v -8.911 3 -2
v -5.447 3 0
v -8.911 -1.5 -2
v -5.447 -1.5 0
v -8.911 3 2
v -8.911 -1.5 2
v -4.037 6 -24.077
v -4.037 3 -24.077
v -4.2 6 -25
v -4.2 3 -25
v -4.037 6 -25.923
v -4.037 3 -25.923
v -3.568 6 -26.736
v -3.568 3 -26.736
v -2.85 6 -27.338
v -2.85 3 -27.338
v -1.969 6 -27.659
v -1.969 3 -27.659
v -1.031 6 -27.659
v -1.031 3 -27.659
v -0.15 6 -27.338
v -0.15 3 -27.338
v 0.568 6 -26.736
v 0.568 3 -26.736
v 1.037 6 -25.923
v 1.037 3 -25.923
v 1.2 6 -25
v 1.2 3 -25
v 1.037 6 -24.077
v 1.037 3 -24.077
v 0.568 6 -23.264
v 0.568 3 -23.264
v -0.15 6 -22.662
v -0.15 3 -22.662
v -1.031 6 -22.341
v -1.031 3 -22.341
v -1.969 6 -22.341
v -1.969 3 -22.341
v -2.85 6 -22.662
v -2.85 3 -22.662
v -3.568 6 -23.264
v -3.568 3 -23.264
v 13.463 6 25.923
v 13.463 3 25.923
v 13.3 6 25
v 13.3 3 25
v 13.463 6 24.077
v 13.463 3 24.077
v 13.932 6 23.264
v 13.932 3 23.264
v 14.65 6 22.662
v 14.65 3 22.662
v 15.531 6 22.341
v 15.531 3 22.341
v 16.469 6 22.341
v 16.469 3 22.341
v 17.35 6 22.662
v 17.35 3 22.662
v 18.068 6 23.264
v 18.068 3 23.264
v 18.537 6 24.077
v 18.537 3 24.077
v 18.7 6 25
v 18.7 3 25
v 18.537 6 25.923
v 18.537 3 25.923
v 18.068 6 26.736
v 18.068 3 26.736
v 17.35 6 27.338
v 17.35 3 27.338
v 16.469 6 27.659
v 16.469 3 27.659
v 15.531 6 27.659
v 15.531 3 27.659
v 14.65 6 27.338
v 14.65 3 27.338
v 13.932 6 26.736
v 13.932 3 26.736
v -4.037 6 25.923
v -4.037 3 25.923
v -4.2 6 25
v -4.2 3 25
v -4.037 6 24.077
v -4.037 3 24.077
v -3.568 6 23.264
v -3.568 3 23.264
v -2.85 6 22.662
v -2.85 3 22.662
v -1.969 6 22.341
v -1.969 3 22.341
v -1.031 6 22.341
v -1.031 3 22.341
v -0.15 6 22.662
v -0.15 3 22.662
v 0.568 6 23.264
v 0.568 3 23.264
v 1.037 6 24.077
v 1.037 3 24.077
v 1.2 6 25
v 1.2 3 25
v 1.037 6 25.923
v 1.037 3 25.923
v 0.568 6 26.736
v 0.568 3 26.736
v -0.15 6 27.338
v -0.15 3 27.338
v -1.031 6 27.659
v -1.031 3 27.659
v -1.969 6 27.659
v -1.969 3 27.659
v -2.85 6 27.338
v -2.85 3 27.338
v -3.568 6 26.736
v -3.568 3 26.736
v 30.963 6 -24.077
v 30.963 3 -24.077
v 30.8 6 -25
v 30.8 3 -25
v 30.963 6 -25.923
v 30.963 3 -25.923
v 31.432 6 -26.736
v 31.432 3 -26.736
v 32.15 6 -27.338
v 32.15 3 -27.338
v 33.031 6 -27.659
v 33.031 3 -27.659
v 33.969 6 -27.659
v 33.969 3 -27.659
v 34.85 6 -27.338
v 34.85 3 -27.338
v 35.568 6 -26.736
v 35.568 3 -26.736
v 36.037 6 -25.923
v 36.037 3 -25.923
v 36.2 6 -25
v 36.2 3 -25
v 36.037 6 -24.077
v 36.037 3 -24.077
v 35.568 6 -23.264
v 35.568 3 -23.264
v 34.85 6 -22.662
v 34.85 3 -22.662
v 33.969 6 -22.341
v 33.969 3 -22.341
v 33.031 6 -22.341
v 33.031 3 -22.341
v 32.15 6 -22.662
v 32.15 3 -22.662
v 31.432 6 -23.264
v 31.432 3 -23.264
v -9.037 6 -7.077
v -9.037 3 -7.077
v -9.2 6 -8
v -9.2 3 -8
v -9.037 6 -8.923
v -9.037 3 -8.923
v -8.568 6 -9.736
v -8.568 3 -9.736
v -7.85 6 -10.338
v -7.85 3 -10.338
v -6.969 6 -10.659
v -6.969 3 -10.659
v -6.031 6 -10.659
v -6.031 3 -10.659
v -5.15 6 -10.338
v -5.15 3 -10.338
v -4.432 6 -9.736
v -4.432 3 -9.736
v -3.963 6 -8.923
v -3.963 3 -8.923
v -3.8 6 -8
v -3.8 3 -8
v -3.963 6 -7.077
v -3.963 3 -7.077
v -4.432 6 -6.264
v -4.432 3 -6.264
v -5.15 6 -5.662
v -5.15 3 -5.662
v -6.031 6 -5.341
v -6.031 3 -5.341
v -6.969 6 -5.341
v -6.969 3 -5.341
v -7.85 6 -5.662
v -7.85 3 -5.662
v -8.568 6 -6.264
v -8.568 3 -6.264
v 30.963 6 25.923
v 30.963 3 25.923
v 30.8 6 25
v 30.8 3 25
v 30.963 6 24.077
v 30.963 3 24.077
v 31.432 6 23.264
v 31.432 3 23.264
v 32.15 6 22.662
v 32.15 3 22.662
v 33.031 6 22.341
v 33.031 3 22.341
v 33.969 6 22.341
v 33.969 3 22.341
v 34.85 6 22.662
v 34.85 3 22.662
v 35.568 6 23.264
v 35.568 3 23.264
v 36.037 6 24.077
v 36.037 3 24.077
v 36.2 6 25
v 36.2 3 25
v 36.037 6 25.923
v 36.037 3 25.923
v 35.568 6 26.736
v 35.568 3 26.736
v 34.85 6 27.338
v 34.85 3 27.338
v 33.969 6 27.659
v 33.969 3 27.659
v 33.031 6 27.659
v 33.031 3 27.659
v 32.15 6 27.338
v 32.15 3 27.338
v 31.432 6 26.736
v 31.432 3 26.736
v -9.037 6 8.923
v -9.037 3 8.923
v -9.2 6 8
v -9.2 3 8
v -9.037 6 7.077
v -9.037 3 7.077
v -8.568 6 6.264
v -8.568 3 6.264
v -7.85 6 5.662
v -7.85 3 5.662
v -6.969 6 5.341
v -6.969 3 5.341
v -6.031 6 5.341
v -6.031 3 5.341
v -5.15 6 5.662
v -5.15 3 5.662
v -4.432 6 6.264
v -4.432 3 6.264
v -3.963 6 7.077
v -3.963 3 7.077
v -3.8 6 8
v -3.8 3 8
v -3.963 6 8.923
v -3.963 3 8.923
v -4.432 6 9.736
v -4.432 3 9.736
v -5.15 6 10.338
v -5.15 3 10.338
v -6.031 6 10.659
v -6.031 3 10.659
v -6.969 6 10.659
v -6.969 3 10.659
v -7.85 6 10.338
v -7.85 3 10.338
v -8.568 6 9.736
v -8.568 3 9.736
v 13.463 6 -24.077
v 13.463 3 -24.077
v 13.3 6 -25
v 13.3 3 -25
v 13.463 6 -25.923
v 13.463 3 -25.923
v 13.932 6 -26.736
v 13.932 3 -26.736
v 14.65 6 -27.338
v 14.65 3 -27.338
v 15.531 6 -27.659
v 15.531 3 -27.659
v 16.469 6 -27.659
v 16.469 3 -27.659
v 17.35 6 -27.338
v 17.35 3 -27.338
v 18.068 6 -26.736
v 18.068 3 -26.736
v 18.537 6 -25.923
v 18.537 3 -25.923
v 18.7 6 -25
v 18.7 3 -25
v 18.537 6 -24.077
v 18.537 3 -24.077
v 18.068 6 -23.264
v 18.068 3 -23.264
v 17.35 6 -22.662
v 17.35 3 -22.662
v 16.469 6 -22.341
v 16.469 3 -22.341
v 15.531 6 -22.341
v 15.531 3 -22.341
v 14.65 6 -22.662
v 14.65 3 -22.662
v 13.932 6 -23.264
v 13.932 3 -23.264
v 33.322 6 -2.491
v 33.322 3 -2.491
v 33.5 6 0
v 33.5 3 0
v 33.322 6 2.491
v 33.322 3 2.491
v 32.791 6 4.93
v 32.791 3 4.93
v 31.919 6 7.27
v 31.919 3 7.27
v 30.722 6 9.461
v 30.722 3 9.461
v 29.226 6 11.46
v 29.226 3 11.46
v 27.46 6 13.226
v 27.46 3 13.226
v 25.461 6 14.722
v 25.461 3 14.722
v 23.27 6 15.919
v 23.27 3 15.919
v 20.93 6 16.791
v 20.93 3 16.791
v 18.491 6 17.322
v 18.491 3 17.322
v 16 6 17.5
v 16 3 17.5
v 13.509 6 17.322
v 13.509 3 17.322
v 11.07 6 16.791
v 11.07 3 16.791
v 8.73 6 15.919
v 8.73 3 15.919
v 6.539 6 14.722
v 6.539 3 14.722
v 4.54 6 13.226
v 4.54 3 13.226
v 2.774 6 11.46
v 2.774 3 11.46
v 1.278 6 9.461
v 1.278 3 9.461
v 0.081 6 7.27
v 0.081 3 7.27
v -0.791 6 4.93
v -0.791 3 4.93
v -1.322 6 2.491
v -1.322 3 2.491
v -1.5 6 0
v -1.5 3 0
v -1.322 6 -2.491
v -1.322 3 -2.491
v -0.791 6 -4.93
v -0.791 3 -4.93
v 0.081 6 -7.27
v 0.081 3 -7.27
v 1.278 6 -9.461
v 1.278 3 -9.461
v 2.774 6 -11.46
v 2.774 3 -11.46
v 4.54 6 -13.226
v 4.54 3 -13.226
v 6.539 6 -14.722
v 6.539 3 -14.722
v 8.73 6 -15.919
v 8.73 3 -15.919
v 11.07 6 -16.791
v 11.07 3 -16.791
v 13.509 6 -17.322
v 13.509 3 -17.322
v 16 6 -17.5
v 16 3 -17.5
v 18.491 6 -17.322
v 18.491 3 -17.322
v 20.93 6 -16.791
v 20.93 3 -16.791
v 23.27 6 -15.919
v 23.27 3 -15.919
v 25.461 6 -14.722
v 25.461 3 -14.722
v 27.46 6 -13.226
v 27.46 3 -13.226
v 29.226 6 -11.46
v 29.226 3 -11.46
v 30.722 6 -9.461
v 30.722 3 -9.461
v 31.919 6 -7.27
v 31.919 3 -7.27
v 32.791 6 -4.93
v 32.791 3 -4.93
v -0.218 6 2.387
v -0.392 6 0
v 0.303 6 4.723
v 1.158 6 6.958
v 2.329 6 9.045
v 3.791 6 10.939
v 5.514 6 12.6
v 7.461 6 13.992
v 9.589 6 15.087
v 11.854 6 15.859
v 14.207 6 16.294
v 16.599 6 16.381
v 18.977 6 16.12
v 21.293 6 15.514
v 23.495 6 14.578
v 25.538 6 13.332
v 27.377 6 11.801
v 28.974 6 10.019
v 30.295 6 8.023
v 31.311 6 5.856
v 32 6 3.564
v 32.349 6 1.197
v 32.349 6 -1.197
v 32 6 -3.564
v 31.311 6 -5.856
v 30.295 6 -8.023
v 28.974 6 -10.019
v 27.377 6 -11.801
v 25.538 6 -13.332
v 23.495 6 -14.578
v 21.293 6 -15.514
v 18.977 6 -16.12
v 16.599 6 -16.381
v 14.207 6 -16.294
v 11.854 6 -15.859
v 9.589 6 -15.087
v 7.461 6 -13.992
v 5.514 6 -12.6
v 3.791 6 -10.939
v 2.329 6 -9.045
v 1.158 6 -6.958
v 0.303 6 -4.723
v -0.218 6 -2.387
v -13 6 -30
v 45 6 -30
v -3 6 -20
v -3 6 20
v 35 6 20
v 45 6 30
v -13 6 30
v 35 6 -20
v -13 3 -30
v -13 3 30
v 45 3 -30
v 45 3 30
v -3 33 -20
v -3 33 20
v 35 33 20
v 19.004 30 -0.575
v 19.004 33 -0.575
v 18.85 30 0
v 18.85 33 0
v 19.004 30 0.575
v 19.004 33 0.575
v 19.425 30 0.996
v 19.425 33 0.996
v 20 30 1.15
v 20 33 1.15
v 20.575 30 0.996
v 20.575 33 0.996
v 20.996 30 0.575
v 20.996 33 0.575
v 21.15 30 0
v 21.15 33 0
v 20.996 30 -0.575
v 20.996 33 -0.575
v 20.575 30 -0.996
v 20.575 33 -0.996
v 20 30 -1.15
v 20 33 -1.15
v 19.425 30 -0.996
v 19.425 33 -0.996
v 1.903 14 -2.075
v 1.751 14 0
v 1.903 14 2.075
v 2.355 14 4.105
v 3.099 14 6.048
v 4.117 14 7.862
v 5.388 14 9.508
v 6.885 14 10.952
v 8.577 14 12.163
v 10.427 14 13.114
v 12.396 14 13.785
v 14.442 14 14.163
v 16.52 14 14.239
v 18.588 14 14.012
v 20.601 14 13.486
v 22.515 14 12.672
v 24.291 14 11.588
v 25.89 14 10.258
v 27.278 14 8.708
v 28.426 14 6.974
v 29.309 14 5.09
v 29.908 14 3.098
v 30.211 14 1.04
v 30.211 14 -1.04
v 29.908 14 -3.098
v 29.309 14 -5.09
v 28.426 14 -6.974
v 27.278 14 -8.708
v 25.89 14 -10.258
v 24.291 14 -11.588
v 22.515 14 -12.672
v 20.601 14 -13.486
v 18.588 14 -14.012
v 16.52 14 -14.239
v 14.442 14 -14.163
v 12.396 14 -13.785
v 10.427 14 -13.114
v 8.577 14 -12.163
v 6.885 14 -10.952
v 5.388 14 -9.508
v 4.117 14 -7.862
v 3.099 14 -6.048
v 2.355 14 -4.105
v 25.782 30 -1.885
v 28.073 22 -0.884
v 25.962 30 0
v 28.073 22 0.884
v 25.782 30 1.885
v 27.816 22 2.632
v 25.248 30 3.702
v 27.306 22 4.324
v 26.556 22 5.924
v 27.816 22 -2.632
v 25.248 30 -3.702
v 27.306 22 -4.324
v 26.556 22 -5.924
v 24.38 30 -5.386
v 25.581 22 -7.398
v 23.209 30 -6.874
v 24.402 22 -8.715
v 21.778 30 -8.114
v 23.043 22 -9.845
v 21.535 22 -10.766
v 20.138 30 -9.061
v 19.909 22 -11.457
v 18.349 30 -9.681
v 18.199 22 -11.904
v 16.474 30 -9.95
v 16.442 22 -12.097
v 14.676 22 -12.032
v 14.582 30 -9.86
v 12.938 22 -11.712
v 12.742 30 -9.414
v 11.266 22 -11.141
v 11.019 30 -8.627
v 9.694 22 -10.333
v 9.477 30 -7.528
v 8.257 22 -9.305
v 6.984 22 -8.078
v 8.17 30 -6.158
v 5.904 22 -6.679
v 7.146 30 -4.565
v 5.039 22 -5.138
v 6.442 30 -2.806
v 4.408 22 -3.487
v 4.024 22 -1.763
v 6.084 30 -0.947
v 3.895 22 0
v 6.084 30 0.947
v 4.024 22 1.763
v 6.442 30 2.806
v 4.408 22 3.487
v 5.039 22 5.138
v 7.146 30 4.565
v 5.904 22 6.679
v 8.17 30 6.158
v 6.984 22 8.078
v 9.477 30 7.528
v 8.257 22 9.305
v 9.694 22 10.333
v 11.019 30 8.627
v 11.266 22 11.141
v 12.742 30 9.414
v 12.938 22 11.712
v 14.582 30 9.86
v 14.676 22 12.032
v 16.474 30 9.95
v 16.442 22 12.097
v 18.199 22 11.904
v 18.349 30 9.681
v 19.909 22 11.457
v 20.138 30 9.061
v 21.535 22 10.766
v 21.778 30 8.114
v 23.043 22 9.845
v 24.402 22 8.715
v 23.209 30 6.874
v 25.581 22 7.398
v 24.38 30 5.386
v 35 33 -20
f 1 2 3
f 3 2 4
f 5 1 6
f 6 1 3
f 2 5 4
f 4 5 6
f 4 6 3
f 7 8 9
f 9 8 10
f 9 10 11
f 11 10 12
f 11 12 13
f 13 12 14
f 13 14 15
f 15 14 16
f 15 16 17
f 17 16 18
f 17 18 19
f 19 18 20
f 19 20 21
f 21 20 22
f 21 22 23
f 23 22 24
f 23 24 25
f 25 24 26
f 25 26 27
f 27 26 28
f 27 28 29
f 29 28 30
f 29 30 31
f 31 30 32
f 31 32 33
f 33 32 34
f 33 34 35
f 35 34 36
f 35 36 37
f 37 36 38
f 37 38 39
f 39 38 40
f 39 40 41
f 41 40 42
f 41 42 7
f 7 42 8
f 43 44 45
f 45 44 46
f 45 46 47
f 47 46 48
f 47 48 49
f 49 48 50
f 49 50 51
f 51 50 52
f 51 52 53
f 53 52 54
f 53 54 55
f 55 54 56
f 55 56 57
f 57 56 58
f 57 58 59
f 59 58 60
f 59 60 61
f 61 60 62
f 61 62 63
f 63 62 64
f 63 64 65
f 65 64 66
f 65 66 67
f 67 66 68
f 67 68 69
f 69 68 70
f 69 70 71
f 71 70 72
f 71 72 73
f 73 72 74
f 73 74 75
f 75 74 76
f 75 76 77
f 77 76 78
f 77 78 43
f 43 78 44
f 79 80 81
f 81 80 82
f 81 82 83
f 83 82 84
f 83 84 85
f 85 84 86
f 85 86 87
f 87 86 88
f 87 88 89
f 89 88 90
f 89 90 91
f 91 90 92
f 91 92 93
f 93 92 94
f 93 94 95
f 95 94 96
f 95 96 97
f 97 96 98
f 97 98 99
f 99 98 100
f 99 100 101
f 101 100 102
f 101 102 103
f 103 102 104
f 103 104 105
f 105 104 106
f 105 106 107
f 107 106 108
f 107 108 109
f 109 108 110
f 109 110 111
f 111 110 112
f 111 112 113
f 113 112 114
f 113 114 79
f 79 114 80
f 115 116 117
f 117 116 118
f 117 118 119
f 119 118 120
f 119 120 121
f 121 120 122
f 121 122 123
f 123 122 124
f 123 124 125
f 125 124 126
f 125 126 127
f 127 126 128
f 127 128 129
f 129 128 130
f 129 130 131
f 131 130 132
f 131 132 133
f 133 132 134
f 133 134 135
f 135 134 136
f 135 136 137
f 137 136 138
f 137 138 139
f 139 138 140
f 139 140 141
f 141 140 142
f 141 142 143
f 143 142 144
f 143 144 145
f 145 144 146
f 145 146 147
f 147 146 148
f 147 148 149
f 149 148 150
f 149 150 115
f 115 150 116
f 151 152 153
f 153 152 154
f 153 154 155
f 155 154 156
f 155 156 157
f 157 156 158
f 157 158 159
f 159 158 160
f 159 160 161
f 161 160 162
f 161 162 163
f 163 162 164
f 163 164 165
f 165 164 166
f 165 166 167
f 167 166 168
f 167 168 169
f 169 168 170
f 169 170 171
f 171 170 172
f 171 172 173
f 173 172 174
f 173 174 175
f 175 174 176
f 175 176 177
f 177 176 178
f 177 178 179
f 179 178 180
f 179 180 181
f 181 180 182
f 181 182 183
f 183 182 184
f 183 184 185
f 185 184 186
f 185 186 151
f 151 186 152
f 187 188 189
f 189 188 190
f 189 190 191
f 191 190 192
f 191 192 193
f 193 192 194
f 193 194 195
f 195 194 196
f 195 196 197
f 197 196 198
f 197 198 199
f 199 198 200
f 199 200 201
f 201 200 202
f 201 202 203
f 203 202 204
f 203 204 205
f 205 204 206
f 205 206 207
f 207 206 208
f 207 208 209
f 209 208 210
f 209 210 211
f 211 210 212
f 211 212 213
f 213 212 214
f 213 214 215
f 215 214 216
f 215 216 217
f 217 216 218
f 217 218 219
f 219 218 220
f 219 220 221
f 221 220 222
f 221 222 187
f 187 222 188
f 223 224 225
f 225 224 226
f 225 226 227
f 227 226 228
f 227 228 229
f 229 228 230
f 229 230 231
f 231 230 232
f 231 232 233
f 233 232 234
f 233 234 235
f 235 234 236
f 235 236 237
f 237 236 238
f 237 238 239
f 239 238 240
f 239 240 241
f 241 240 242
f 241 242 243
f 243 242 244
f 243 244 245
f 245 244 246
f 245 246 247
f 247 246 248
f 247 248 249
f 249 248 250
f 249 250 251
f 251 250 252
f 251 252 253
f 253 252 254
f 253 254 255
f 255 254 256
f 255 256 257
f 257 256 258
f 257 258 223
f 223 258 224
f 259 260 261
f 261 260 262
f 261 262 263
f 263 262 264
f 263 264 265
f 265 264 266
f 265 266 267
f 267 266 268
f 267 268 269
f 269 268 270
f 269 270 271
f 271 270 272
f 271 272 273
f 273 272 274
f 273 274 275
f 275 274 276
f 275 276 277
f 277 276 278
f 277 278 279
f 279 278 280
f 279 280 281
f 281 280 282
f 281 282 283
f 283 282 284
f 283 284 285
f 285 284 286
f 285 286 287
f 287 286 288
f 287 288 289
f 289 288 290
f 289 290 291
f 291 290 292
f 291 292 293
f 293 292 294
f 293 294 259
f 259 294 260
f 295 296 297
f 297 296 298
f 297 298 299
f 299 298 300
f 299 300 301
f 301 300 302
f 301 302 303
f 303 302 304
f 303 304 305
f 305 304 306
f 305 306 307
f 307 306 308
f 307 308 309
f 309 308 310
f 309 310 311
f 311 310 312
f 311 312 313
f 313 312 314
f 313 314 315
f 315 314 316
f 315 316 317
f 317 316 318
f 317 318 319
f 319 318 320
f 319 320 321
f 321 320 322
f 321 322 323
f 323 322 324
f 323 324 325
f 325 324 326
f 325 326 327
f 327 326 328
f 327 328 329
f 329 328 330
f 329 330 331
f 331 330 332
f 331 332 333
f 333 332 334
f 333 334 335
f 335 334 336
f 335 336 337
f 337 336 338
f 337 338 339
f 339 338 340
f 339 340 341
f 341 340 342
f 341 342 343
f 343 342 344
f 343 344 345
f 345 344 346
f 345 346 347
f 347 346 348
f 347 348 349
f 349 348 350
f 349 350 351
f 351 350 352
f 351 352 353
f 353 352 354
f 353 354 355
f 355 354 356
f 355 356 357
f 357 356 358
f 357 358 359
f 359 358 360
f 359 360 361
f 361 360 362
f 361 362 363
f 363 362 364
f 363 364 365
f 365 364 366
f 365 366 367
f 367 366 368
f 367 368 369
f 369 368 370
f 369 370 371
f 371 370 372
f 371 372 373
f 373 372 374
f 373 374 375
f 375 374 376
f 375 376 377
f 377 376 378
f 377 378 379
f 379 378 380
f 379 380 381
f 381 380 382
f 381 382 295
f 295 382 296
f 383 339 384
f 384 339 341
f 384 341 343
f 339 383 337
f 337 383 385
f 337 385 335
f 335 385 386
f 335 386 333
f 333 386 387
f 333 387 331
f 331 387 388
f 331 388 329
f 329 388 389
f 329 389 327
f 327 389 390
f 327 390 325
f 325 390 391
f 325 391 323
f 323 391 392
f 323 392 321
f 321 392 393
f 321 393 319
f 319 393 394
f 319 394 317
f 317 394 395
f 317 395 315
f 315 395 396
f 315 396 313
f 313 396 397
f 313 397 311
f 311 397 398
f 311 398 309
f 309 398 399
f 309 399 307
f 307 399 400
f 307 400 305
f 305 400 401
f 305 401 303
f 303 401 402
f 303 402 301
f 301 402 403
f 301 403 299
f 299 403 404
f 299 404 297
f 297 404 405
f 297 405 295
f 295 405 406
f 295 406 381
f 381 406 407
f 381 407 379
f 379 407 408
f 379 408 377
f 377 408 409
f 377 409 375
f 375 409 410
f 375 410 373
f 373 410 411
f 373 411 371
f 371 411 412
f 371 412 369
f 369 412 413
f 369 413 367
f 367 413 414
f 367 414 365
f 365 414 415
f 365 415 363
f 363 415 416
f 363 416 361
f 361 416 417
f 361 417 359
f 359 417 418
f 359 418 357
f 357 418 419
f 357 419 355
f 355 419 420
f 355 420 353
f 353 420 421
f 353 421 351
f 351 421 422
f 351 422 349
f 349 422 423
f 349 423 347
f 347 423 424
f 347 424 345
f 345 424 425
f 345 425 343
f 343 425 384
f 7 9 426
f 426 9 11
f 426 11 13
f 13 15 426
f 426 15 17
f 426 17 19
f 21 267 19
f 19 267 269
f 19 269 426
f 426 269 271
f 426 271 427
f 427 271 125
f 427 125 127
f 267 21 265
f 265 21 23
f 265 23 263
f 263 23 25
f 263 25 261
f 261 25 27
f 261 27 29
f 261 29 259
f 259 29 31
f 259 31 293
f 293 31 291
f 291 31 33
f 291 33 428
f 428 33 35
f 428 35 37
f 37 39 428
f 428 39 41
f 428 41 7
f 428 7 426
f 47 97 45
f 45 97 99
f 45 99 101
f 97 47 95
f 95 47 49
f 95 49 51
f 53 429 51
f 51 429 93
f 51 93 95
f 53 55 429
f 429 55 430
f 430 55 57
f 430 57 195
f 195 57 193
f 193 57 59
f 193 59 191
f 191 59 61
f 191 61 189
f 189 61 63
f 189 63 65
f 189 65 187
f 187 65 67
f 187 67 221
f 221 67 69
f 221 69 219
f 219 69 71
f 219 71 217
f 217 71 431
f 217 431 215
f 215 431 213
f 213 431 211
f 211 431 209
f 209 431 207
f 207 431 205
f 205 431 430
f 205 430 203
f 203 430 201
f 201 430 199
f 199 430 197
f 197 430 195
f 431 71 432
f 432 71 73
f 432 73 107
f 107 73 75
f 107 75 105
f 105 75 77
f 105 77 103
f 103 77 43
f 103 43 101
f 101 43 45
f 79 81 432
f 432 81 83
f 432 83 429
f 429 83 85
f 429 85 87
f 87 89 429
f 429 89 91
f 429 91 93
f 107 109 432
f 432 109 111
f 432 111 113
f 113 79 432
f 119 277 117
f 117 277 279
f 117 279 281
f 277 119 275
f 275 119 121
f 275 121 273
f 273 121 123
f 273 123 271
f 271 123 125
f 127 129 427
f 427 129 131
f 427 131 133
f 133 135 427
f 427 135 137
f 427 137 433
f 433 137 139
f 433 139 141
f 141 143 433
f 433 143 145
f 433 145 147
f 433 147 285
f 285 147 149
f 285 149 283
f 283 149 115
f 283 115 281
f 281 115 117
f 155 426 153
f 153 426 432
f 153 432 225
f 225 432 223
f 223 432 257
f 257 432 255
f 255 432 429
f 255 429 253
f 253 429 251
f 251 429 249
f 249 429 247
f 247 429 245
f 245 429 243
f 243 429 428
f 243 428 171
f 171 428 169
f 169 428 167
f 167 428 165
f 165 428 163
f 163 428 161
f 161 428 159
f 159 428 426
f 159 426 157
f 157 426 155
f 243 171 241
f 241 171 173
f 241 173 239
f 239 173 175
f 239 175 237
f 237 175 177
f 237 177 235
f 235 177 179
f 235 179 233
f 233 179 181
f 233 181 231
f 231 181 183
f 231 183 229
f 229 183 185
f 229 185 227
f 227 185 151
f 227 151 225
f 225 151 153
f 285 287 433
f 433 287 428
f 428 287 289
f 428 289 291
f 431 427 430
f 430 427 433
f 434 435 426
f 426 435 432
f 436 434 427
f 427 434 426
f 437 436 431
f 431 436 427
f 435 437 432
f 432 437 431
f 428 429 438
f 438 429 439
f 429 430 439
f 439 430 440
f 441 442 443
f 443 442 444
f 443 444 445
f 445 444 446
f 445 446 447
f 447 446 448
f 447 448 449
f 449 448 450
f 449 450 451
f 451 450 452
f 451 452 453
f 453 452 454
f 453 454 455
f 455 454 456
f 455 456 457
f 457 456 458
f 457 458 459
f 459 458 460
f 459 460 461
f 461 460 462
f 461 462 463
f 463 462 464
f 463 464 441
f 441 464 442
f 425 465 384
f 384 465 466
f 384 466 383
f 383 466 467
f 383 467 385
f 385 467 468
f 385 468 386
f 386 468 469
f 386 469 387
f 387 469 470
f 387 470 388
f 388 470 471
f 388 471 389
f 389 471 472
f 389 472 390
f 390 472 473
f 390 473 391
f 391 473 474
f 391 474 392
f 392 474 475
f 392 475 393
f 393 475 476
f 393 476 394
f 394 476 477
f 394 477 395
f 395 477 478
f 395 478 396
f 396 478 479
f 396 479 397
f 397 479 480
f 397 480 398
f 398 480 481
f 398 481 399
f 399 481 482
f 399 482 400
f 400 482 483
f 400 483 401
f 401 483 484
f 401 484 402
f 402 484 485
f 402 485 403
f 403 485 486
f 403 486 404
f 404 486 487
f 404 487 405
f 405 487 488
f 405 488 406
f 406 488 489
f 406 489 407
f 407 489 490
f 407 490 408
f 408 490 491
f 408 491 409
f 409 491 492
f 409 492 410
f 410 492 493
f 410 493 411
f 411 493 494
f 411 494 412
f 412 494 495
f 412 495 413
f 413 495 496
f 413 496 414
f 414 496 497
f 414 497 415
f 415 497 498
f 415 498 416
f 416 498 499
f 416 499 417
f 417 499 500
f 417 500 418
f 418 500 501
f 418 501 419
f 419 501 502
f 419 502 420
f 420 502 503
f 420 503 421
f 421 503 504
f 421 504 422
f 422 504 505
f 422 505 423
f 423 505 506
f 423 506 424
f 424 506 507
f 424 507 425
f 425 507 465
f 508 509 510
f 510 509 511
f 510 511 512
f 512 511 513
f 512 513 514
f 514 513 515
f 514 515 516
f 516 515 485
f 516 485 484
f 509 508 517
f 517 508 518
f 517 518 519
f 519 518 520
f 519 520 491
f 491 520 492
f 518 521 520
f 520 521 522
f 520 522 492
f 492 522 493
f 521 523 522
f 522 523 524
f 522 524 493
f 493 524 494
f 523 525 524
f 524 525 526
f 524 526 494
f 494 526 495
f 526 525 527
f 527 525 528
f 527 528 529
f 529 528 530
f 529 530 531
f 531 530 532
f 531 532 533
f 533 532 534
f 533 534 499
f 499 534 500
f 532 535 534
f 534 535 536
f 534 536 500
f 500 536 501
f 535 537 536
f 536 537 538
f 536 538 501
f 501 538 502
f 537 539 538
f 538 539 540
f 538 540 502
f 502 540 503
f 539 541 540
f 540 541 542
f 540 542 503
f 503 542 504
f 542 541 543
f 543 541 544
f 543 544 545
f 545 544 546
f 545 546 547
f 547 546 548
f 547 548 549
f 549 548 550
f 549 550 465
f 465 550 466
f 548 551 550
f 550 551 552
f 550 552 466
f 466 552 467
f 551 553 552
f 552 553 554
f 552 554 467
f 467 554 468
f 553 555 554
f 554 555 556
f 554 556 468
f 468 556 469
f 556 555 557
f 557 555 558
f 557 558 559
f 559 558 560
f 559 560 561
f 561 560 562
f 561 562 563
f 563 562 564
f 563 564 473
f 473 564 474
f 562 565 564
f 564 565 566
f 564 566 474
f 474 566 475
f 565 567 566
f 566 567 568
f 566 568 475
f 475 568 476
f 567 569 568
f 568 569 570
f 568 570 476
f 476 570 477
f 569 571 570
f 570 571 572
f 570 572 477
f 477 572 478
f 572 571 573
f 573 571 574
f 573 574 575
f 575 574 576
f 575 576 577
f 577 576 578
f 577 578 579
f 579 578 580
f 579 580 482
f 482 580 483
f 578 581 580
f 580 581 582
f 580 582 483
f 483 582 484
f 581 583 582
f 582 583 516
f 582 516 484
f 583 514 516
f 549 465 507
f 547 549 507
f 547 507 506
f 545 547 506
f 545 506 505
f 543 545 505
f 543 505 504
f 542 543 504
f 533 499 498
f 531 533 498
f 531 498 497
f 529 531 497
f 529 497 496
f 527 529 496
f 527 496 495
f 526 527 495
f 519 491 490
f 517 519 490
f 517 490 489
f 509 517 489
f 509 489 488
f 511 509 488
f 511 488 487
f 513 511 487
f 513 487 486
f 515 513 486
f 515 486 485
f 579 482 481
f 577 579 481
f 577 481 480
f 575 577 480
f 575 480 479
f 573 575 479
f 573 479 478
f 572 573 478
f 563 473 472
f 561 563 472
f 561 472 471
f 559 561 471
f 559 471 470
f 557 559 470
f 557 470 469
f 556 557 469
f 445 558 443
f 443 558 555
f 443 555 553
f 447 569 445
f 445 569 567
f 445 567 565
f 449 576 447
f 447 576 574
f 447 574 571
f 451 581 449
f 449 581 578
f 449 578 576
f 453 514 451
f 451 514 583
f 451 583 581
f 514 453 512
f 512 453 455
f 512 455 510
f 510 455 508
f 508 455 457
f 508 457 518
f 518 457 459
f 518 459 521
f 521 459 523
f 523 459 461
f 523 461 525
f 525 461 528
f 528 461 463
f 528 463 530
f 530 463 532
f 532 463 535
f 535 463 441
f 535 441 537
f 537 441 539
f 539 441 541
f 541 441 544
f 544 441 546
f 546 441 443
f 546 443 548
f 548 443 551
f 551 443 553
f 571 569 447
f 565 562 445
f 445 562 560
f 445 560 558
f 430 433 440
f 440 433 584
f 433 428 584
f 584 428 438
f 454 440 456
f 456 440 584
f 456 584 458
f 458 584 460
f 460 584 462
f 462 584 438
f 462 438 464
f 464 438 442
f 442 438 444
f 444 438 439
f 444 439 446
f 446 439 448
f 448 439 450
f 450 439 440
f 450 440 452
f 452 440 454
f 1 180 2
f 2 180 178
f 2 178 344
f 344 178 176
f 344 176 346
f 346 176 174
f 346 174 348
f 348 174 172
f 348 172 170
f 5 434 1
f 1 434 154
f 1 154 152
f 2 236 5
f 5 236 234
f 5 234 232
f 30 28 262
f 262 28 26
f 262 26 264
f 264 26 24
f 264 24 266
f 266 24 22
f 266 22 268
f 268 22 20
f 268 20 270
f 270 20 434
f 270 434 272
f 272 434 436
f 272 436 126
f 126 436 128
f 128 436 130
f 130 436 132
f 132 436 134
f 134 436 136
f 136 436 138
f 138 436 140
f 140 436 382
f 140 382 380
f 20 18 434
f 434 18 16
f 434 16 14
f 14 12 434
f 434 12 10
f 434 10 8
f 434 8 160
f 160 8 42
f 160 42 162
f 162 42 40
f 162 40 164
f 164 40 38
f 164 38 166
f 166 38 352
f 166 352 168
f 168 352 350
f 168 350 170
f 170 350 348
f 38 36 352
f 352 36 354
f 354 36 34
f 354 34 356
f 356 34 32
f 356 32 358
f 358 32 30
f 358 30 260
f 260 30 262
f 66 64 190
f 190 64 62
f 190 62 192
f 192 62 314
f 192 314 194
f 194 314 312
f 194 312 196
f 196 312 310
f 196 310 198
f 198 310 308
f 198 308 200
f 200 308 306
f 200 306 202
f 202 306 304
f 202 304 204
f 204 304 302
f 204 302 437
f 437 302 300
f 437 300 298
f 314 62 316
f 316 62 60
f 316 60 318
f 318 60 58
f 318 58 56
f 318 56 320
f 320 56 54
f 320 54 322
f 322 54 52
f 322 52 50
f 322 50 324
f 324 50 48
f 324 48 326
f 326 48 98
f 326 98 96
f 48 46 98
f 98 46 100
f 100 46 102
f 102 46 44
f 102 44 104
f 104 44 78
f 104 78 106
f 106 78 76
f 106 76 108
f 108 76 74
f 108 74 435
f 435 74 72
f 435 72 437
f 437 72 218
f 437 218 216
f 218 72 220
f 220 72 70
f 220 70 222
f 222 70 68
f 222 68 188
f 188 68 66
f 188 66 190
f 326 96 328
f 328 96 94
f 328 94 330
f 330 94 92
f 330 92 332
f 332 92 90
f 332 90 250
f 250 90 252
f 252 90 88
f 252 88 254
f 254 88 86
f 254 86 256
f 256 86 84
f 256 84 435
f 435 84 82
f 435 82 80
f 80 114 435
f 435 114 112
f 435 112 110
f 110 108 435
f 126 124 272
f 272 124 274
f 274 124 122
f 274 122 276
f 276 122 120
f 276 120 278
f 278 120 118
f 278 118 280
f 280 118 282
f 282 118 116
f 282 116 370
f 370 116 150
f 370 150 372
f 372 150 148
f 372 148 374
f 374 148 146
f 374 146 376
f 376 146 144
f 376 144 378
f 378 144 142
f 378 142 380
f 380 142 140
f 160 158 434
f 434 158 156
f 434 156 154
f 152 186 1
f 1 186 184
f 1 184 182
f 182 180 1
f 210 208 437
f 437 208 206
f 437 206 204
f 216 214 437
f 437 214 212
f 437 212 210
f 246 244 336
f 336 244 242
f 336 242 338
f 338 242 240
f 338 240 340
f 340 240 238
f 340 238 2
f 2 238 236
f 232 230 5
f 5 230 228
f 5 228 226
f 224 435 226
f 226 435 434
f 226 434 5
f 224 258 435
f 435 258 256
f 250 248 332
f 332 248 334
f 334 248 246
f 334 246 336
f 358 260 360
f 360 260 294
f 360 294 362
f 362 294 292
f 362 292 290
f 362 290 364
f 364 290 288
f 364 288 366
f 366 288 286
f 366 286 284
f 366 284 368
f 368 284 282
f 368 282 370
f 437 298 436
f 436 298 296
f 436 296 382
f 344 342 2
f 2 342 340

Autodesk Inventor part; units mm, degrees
ref_plane "YZ Plane" through (0, 0, 0) normal (1, 0, 0) x (0, 1, 0)
ref_plane "XZ Plane" through (0, 0, 0) normal (0, 1, 0) x (-1, 0, 0)
ref_plane "XY Plane" through (0, 0, 0) normal (0, 0, 1) x (1, 0, 0)
ref_plane "Work Plane5" through (0, 3, 0) normal (0, 1, 0) x (1, 0, 0)
sketch "Sketch45" plane through (0, 3, 0) normal (0, 1, 0) x (1, 0, 0)
  line L0 (35, -20) -> (-3, -20)
  line L1 (-3, -20) -> (-3, 20)
  line L2 (-3, 20) -> (35, 20)
  line L3 (35, 20) -> (35, -20)
  point P0 (0, 0)
  dimension "d142" = 38
  dimension "d143" = 40
extrude "Extrusion34" add sketch "Sketch45" along normal blind 30
ref_plane "Work Plane2" through (0, 0, 0) normal (0, -1, 0) x (1, 0, 0)
sketch "Sketch47" plane through (0, 0, 0) normal (0, -1, 0) x (1, 0, 0)
  circle A0 centre (16, 0) radius 18
  point P0 (0, 0)
  dimension "d146" = 36
extrude "Extrusion35" cut sketch "Sketch47" against normal blind 30 draft -15
ref_plane "Work Plane1" through (0, 3, 0) normal (0, 1, 0) x (1, 0, 0)
sketch "Sketch74" plane through (0, 33, 0) normal (0, 1, 0) x (1, 0, 0)
  circle A0 centre (20, 0) radius 1.15
  point P0 (0, 0)
  dimension "d210" = 2.3
extrude "Extrusion51" cut sketch "Sketch74" against normal blind 10
sketch "Sketch77" plane through (0, 3, 0) normal (0, -1, 0) x (1, 0, 0)
  circle A0 centre (16, 0) radius 17.5
  point P0 (0, 0)
  dimension "d219" = 35
sketch "Sketch78" plane through (0, 3, 0) normal (0, -1, 0) x (1, 0, 0)
  line L0 (45, -30) -> (-13, -30)
  line L1 (-13, -30) -> (-13, 30)
  line L2 (-13, 30) -> (45, 30)
  line L3 (45, 30) -> (45, -30)
  line L4 (45, -30) -> (-13, 30) construction
  line L5 (-13, -30) -> (45, 30) construction
  point P0 (0, 0)
  point P1 (16, 0)
  dimension "d220" = 58
  dimension "d221" = 60
extrude "Extrusion53" add sketch "Sketch78" against normal blind 3
extrude "Extrusion54" cut sketch "Sketch77" against normal blind 3
sketch "Sketch81" plane through (0, 3, 0) normal (0, -1, 0) x (1, 0, 0)
  circle A0 centre (33.5, -25) radius 2.7
  line L0 (-13, -30) -> (45, -30) projected
  line L1 (45, -30) -> (45, 30) projected
  circle A1 centre (16, -25) radius 2.7
  circle A2 centre (-1.5, -25) radius 2.7
  circle A3 centre (-6.5, -8) radius 2.7
  circle A4 centre (-6.5, 8) radius 2.7
  circle A5 centre (-1.5, 25) radius 2.7
  circle A6 centre (16, 25) radius 2.7
  circle A7 centre (33.5, 25) radius 2.7
  point P0 (0, 0)
  dimension "mag_D" = 5.4
  dimension "d232" = 5
  dimension "d233" = 11.5
  dimension "d234" = 5.4
  dimension "d235" = 17.5
  dimension "d236" = 5.4
  dimension "d237" = 17.5
  dimension "d238" = 5.4
  dimension "d239" = 5
  dimension "d240" = 17
  dimension "d241" = 5.4
  dimension "d242" = 16
  dimension "d243" = 5.4
  dimension "d244" = 17
  dimension "d245" = 5.4
  dimension "d246" = 17.5
  dimension "d247" = 5.4
  dimension "d248" = 17.5
  dimension "d249" = 5
extrude "Extrusion56" cut sketch "Sketch81" against normal blind 30
sketch "Sketch83" plane through (0, 3, 0) normal (0, -1, 0) x (1, 0, 0)
  circle A0 centre (-6.5, -8) radius 2.7 projected
  line L0 (-8.9107, -2) -> (-8.9107, 2)
  line L1 (-8.9107, 2) -> (-5.4466, 0)
  line L2 (-5.4466, 0) -> (-8.9107, -2)
  point P0 (0, 0)
  point P1 (-8.9107, -9.2159)
  point P2 (-7.756, 0)
  dimension "d253" = 4
extrude "Extrusion57" add sketch "Sketch83" along normal blind 4.5 contours L0 L1 L2
equation "\"d234\" = mag_D"
equation "\"d236\" = mag_D"
equation "\"d237\" = d235"
equation "\"d238\" = mag_D"
equation "\"d241\" = mag_D"
equation "\"d243\" = mag_D"
equation "\"d244\" = d240"
equation "\"d245\" = mag_D"
equation "\"d246\" = d235"
equation "\"d247\" = mag_D"
equation "\"d248\" = d235"
equation "\"d249\" = d239"
properties part number "liquid_port_v04"
